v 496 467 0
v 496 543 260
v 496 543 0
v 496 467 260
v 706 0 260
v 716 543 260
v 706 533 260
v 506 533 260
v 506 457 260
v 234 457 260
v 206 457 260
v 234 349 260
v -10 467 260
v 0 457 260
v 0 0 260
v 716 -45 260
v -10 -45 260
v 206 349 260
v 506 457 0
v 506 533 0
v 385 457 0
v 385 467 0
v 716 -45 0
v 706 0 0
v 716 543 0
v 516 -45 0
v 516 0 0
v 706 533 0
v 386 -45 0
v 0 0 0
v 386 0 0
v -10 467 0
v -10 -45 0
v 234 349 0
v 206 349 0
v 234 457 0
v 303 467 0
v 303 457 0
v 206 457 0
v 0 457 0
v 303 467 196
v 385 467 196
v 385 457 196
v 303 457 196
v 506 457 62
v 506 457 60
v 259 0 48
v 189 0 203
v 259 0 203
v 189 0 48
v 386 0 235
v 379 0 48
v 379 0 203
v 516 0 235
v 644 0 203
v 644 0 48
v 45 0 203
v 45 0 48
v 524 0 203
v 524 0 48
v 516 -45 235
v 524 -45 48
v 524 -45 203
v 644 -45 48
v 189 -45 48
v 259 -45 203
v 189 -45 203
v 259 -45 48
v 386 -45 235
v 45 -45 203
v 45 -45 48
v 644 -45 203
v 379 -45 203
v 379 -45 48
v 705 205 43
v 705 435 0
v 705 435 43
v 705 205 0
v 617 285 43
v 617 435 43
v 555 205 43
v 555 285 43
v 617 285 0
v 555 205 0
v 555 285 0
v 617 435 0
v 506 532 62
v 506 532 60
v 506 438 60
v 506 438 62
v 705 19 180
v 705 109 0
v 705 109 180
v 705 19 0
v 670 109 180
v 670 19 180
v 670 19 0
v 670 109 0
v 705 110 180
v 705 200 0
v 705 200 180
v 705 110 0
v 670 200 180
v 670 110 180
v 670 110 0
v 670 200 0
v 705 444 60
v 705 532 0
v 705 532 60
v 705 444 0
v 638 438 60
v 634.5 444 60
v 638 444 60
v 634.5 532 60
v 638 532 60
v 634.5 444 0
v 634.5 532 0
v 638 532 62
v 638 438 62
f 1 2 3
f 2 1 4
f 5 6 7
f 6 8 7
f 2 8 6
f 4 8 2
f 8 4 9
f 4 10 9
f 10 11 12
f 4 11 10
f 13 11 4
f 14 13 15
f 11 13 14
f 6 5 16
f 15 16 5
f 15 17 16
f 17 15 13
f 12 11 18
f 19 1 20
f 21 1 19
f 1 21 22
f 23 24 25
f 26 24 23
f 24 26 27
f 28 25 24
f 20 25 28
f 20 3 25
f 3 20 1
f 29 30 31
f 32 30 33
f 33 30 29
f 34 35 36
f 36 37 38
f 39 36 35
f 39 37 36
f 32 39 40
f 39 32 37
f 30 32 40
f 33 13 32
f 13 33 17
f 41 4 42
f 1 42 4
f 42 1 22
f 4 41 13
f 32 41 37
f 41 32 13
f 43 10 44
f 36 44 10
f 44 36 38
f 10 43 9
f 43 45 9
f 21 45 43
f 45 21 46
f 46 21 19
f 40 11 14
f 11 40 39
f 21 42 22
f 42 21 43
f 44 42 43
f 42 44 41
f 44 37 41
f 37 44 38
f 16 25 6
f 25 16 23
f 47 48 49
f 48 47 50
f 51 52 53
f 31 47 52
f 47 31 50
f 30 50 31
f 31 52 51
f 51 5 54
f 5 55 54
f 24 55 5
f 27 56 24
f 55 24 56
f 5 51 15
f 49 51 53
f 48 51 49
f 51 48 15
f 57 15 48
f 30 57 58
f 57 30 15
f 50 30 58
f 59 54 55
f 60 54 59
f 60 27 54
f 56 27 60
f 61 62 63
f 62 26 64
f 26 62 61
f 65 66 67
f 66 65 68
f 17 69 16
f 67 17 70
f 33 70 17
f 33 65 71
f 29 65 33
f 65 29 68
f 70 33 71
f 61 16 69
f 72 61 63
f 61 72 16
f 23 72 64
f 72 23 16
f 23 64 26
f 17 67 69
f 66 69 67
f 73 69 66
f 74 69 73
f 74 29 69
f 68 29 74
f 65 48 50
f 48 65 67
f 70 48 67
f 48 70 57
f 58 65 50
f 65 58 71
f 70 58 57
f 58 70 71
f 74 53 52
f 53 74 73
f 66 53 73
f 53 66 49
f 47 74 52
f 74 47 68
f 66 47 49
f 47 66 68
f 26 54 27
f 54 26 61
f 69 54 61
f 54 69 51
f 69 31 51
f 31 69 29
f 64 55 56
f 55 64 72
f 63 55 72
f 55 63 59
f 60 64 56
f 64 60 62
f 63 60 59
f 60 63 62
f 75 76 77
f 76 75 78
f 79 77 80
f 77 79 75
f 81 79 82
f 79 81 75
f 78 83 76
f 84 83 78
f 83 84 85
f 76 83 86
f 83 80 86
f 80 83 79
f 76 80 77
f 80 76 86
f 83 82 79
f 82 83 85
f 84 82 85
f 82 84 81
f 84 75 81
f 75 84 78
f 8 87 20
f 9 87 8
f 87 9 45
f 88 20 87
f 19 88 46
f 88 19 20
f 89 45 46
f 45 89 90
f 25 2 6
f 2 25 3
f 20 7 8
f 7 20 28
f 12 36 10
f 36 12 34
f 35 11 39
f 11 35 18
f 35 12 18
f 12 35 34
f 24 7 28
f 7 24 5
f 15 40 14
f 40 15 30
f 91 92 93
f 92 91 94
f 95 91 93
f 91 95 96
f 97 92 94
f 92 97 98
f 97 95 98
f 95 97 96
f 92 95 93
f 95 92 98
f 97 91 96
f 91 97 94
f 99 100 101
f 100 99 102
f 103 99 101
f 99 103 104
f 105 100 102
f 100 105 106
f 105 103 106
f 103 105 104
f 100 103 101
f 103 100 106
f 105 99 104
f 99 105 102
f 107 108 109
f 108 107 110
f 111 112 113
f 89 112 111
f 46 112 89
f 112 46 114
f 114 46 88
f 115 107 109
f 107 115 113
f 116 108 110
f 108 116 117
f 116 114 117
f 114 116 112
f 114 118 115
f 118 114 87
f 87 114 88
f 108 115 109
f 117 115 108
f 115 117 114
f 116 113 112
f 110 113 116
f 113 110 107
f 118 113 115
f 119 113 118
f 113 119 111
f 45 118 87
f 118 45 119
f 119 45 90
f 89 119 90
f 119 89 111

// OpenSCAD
vyska  = 196+64;
tenka  = 10;
tlusta = 45;


vychod = 19 + 90 + 1 + 90 + 149 + 184;
//zapad  = 143 + 273;
zapad = vychod - 76;
jih    = 62 + 120 + 145 + 120 + 70 + 144 + 45;
sever1 = 147+59 +  28+69+82+111;
sever2 = 210;
sever_posun = 76;
sever = sever1+sever2;

severni_pricka_pozice   = 147+59;
severni_pricka_delka    = 108;
severni_pricka_tloustka = 28;

dvere_pozice = 147 + 59 + 28 + 69;
dvere_sirka = 82;
dvere_vyska = 196;

okno_vyska = 155;
okno_vertikalni_pozice = 48;
vetsi_okno_sirka = 144;
mensi_okno_sirka = 120;

vetsi_okno_pozice = 45;
mensi_okno_pozice1 = 45+144+70;
mensi_okno_pozice2 = 45+144+70+120+145;

balkonove_dvere_sirka = 130;
balkonove_dvere_vyska = 235;
balkonove_dvere_pozice = 45+144+70+120+7;

police_vyska = 180;
police_sirka = 90;
police_tloustka = 35;
police_pozice = 19;

akvarium_delka = 88;
akvarium_tloustka = 70.5;
akvarium_vyska = 60;

pracovni_deska_sirka = 132;
pracovni_deska_hloubka = 94;

gauc_vyska = 43;
gauc_A_delka = 150;
gauc_A_sirka = 88;
gauc_B_delka = 150;
gauc_B_sirka = 80;

stul_delka = 180;
stul_sirka = 90;
stul_vyska = 75;

module gauc() {
    color("gray")
    translate([gauc_B_delka-gauc_A_sirka, gauc_B_sirka, 0])
    cube([gauc_A_sirka, gauc_A_delka, gauc_vyska]);
    
    
    color("gray")
    cube([gauc_B_delka, gauc_B_sirka, gauc_vyska]);
}

//severni stena
color("white")
translate([sever1, zapad, 0])
cube([tenka, sever_posun+tenka, vyska]);

color("white")
translate([sever1, vychod, 0])
cube([sever2 + tenka, tenka, vyska]);

difference () {
    color("white")
    translate([-tenka, zapad, 0])
    cube([sever1 + tenka, tenka, vyska]);

    //dvere
    translate([dvere_pozice, zapad - 3*tenka, 0])
    cube([dvere_sirka, 10*tenka, dvere_vyska]);
};

//severni pricka
color("white")
translate([severni_pricka_pozice, zapad-severni_pricka_delka, 0])
cube([severni_pricka_tloustka, severni_pricka_delka, vyska]);


//vychodni stena
color("white")
translate([max(sever, jih), -tlusta, 0])
cube([tenka, vychod + tenka + tlusta, vyska]);

//jizni stena
difference() {
    color("white")
    translate([-tenka, -tlusta, 0])
    cube([jih + 2*tenka, tlusta, vyska]);
    
    //zapadni okno
    translate([vetsi_okno_pozice, -2*tlusta, okno_vertikalni_pozice])
    cube([vetsi_okno_sirka, 3*tlusta, okno_vyska]);

    //prostreni okno
    translate([mensi_okno_pozice1, -2*tlusta, okno_vertikalni_pozice])
    cube([mensi_okno_sirka, 3*tlusta, okno_vyska]);

    //balkonove dvere
    translate([balkonove_dvere_pozice, -2*tlusta, 0])
    cube([balkonove_dvere_sirka, 3*tlusta, balkonove_dvere_vyska]);

    //vychodni okno
    translate([mensi_okno_pozice2, -2*tlusta, okno_vertikalni_pozice])
    cube([mensi_okno_sirka, 3*tlusta, okno_vyska]);

}

//zapadni stena
color("white")
translate([-tenka, -tlusta, 0])
cube([tenka, zapad  + tenka + tlusta, vyska]);


//nabytek
//police1
color("gray")
translate([jih-police_tloustka-1, police_pozice, 0])
cube([police_tloustka, police_sirka, police_vyska]);

//police2
color("gray")
translate([jih-police_tloustka-1, police_pozice+1+police_sirka, 0])
cube([police_tloustka, police_sirka, police_vyska]);

//akvarium
color("blue")
translate([jih-akvarium_tloustka-1, vychod-akvarium_delka-1, 0])
cube([akvarium_tloustka, akvarium_delka, akvarium_vyska]);

//pracovni_deska
color("brown")
translate([sever1+tenka, vychod-pracovni_deska_hloubka-1, akvarium_vyska])
cube([pracovni_deska_sirka, pracovni_deska_hloubka, 2]);

//gauc
translate([ jih - 1 - gauc_B_delka, vychod - akvarium_delka - 10 - gauc_A_delka-gauc_B_sirka, 0])
gauc();
